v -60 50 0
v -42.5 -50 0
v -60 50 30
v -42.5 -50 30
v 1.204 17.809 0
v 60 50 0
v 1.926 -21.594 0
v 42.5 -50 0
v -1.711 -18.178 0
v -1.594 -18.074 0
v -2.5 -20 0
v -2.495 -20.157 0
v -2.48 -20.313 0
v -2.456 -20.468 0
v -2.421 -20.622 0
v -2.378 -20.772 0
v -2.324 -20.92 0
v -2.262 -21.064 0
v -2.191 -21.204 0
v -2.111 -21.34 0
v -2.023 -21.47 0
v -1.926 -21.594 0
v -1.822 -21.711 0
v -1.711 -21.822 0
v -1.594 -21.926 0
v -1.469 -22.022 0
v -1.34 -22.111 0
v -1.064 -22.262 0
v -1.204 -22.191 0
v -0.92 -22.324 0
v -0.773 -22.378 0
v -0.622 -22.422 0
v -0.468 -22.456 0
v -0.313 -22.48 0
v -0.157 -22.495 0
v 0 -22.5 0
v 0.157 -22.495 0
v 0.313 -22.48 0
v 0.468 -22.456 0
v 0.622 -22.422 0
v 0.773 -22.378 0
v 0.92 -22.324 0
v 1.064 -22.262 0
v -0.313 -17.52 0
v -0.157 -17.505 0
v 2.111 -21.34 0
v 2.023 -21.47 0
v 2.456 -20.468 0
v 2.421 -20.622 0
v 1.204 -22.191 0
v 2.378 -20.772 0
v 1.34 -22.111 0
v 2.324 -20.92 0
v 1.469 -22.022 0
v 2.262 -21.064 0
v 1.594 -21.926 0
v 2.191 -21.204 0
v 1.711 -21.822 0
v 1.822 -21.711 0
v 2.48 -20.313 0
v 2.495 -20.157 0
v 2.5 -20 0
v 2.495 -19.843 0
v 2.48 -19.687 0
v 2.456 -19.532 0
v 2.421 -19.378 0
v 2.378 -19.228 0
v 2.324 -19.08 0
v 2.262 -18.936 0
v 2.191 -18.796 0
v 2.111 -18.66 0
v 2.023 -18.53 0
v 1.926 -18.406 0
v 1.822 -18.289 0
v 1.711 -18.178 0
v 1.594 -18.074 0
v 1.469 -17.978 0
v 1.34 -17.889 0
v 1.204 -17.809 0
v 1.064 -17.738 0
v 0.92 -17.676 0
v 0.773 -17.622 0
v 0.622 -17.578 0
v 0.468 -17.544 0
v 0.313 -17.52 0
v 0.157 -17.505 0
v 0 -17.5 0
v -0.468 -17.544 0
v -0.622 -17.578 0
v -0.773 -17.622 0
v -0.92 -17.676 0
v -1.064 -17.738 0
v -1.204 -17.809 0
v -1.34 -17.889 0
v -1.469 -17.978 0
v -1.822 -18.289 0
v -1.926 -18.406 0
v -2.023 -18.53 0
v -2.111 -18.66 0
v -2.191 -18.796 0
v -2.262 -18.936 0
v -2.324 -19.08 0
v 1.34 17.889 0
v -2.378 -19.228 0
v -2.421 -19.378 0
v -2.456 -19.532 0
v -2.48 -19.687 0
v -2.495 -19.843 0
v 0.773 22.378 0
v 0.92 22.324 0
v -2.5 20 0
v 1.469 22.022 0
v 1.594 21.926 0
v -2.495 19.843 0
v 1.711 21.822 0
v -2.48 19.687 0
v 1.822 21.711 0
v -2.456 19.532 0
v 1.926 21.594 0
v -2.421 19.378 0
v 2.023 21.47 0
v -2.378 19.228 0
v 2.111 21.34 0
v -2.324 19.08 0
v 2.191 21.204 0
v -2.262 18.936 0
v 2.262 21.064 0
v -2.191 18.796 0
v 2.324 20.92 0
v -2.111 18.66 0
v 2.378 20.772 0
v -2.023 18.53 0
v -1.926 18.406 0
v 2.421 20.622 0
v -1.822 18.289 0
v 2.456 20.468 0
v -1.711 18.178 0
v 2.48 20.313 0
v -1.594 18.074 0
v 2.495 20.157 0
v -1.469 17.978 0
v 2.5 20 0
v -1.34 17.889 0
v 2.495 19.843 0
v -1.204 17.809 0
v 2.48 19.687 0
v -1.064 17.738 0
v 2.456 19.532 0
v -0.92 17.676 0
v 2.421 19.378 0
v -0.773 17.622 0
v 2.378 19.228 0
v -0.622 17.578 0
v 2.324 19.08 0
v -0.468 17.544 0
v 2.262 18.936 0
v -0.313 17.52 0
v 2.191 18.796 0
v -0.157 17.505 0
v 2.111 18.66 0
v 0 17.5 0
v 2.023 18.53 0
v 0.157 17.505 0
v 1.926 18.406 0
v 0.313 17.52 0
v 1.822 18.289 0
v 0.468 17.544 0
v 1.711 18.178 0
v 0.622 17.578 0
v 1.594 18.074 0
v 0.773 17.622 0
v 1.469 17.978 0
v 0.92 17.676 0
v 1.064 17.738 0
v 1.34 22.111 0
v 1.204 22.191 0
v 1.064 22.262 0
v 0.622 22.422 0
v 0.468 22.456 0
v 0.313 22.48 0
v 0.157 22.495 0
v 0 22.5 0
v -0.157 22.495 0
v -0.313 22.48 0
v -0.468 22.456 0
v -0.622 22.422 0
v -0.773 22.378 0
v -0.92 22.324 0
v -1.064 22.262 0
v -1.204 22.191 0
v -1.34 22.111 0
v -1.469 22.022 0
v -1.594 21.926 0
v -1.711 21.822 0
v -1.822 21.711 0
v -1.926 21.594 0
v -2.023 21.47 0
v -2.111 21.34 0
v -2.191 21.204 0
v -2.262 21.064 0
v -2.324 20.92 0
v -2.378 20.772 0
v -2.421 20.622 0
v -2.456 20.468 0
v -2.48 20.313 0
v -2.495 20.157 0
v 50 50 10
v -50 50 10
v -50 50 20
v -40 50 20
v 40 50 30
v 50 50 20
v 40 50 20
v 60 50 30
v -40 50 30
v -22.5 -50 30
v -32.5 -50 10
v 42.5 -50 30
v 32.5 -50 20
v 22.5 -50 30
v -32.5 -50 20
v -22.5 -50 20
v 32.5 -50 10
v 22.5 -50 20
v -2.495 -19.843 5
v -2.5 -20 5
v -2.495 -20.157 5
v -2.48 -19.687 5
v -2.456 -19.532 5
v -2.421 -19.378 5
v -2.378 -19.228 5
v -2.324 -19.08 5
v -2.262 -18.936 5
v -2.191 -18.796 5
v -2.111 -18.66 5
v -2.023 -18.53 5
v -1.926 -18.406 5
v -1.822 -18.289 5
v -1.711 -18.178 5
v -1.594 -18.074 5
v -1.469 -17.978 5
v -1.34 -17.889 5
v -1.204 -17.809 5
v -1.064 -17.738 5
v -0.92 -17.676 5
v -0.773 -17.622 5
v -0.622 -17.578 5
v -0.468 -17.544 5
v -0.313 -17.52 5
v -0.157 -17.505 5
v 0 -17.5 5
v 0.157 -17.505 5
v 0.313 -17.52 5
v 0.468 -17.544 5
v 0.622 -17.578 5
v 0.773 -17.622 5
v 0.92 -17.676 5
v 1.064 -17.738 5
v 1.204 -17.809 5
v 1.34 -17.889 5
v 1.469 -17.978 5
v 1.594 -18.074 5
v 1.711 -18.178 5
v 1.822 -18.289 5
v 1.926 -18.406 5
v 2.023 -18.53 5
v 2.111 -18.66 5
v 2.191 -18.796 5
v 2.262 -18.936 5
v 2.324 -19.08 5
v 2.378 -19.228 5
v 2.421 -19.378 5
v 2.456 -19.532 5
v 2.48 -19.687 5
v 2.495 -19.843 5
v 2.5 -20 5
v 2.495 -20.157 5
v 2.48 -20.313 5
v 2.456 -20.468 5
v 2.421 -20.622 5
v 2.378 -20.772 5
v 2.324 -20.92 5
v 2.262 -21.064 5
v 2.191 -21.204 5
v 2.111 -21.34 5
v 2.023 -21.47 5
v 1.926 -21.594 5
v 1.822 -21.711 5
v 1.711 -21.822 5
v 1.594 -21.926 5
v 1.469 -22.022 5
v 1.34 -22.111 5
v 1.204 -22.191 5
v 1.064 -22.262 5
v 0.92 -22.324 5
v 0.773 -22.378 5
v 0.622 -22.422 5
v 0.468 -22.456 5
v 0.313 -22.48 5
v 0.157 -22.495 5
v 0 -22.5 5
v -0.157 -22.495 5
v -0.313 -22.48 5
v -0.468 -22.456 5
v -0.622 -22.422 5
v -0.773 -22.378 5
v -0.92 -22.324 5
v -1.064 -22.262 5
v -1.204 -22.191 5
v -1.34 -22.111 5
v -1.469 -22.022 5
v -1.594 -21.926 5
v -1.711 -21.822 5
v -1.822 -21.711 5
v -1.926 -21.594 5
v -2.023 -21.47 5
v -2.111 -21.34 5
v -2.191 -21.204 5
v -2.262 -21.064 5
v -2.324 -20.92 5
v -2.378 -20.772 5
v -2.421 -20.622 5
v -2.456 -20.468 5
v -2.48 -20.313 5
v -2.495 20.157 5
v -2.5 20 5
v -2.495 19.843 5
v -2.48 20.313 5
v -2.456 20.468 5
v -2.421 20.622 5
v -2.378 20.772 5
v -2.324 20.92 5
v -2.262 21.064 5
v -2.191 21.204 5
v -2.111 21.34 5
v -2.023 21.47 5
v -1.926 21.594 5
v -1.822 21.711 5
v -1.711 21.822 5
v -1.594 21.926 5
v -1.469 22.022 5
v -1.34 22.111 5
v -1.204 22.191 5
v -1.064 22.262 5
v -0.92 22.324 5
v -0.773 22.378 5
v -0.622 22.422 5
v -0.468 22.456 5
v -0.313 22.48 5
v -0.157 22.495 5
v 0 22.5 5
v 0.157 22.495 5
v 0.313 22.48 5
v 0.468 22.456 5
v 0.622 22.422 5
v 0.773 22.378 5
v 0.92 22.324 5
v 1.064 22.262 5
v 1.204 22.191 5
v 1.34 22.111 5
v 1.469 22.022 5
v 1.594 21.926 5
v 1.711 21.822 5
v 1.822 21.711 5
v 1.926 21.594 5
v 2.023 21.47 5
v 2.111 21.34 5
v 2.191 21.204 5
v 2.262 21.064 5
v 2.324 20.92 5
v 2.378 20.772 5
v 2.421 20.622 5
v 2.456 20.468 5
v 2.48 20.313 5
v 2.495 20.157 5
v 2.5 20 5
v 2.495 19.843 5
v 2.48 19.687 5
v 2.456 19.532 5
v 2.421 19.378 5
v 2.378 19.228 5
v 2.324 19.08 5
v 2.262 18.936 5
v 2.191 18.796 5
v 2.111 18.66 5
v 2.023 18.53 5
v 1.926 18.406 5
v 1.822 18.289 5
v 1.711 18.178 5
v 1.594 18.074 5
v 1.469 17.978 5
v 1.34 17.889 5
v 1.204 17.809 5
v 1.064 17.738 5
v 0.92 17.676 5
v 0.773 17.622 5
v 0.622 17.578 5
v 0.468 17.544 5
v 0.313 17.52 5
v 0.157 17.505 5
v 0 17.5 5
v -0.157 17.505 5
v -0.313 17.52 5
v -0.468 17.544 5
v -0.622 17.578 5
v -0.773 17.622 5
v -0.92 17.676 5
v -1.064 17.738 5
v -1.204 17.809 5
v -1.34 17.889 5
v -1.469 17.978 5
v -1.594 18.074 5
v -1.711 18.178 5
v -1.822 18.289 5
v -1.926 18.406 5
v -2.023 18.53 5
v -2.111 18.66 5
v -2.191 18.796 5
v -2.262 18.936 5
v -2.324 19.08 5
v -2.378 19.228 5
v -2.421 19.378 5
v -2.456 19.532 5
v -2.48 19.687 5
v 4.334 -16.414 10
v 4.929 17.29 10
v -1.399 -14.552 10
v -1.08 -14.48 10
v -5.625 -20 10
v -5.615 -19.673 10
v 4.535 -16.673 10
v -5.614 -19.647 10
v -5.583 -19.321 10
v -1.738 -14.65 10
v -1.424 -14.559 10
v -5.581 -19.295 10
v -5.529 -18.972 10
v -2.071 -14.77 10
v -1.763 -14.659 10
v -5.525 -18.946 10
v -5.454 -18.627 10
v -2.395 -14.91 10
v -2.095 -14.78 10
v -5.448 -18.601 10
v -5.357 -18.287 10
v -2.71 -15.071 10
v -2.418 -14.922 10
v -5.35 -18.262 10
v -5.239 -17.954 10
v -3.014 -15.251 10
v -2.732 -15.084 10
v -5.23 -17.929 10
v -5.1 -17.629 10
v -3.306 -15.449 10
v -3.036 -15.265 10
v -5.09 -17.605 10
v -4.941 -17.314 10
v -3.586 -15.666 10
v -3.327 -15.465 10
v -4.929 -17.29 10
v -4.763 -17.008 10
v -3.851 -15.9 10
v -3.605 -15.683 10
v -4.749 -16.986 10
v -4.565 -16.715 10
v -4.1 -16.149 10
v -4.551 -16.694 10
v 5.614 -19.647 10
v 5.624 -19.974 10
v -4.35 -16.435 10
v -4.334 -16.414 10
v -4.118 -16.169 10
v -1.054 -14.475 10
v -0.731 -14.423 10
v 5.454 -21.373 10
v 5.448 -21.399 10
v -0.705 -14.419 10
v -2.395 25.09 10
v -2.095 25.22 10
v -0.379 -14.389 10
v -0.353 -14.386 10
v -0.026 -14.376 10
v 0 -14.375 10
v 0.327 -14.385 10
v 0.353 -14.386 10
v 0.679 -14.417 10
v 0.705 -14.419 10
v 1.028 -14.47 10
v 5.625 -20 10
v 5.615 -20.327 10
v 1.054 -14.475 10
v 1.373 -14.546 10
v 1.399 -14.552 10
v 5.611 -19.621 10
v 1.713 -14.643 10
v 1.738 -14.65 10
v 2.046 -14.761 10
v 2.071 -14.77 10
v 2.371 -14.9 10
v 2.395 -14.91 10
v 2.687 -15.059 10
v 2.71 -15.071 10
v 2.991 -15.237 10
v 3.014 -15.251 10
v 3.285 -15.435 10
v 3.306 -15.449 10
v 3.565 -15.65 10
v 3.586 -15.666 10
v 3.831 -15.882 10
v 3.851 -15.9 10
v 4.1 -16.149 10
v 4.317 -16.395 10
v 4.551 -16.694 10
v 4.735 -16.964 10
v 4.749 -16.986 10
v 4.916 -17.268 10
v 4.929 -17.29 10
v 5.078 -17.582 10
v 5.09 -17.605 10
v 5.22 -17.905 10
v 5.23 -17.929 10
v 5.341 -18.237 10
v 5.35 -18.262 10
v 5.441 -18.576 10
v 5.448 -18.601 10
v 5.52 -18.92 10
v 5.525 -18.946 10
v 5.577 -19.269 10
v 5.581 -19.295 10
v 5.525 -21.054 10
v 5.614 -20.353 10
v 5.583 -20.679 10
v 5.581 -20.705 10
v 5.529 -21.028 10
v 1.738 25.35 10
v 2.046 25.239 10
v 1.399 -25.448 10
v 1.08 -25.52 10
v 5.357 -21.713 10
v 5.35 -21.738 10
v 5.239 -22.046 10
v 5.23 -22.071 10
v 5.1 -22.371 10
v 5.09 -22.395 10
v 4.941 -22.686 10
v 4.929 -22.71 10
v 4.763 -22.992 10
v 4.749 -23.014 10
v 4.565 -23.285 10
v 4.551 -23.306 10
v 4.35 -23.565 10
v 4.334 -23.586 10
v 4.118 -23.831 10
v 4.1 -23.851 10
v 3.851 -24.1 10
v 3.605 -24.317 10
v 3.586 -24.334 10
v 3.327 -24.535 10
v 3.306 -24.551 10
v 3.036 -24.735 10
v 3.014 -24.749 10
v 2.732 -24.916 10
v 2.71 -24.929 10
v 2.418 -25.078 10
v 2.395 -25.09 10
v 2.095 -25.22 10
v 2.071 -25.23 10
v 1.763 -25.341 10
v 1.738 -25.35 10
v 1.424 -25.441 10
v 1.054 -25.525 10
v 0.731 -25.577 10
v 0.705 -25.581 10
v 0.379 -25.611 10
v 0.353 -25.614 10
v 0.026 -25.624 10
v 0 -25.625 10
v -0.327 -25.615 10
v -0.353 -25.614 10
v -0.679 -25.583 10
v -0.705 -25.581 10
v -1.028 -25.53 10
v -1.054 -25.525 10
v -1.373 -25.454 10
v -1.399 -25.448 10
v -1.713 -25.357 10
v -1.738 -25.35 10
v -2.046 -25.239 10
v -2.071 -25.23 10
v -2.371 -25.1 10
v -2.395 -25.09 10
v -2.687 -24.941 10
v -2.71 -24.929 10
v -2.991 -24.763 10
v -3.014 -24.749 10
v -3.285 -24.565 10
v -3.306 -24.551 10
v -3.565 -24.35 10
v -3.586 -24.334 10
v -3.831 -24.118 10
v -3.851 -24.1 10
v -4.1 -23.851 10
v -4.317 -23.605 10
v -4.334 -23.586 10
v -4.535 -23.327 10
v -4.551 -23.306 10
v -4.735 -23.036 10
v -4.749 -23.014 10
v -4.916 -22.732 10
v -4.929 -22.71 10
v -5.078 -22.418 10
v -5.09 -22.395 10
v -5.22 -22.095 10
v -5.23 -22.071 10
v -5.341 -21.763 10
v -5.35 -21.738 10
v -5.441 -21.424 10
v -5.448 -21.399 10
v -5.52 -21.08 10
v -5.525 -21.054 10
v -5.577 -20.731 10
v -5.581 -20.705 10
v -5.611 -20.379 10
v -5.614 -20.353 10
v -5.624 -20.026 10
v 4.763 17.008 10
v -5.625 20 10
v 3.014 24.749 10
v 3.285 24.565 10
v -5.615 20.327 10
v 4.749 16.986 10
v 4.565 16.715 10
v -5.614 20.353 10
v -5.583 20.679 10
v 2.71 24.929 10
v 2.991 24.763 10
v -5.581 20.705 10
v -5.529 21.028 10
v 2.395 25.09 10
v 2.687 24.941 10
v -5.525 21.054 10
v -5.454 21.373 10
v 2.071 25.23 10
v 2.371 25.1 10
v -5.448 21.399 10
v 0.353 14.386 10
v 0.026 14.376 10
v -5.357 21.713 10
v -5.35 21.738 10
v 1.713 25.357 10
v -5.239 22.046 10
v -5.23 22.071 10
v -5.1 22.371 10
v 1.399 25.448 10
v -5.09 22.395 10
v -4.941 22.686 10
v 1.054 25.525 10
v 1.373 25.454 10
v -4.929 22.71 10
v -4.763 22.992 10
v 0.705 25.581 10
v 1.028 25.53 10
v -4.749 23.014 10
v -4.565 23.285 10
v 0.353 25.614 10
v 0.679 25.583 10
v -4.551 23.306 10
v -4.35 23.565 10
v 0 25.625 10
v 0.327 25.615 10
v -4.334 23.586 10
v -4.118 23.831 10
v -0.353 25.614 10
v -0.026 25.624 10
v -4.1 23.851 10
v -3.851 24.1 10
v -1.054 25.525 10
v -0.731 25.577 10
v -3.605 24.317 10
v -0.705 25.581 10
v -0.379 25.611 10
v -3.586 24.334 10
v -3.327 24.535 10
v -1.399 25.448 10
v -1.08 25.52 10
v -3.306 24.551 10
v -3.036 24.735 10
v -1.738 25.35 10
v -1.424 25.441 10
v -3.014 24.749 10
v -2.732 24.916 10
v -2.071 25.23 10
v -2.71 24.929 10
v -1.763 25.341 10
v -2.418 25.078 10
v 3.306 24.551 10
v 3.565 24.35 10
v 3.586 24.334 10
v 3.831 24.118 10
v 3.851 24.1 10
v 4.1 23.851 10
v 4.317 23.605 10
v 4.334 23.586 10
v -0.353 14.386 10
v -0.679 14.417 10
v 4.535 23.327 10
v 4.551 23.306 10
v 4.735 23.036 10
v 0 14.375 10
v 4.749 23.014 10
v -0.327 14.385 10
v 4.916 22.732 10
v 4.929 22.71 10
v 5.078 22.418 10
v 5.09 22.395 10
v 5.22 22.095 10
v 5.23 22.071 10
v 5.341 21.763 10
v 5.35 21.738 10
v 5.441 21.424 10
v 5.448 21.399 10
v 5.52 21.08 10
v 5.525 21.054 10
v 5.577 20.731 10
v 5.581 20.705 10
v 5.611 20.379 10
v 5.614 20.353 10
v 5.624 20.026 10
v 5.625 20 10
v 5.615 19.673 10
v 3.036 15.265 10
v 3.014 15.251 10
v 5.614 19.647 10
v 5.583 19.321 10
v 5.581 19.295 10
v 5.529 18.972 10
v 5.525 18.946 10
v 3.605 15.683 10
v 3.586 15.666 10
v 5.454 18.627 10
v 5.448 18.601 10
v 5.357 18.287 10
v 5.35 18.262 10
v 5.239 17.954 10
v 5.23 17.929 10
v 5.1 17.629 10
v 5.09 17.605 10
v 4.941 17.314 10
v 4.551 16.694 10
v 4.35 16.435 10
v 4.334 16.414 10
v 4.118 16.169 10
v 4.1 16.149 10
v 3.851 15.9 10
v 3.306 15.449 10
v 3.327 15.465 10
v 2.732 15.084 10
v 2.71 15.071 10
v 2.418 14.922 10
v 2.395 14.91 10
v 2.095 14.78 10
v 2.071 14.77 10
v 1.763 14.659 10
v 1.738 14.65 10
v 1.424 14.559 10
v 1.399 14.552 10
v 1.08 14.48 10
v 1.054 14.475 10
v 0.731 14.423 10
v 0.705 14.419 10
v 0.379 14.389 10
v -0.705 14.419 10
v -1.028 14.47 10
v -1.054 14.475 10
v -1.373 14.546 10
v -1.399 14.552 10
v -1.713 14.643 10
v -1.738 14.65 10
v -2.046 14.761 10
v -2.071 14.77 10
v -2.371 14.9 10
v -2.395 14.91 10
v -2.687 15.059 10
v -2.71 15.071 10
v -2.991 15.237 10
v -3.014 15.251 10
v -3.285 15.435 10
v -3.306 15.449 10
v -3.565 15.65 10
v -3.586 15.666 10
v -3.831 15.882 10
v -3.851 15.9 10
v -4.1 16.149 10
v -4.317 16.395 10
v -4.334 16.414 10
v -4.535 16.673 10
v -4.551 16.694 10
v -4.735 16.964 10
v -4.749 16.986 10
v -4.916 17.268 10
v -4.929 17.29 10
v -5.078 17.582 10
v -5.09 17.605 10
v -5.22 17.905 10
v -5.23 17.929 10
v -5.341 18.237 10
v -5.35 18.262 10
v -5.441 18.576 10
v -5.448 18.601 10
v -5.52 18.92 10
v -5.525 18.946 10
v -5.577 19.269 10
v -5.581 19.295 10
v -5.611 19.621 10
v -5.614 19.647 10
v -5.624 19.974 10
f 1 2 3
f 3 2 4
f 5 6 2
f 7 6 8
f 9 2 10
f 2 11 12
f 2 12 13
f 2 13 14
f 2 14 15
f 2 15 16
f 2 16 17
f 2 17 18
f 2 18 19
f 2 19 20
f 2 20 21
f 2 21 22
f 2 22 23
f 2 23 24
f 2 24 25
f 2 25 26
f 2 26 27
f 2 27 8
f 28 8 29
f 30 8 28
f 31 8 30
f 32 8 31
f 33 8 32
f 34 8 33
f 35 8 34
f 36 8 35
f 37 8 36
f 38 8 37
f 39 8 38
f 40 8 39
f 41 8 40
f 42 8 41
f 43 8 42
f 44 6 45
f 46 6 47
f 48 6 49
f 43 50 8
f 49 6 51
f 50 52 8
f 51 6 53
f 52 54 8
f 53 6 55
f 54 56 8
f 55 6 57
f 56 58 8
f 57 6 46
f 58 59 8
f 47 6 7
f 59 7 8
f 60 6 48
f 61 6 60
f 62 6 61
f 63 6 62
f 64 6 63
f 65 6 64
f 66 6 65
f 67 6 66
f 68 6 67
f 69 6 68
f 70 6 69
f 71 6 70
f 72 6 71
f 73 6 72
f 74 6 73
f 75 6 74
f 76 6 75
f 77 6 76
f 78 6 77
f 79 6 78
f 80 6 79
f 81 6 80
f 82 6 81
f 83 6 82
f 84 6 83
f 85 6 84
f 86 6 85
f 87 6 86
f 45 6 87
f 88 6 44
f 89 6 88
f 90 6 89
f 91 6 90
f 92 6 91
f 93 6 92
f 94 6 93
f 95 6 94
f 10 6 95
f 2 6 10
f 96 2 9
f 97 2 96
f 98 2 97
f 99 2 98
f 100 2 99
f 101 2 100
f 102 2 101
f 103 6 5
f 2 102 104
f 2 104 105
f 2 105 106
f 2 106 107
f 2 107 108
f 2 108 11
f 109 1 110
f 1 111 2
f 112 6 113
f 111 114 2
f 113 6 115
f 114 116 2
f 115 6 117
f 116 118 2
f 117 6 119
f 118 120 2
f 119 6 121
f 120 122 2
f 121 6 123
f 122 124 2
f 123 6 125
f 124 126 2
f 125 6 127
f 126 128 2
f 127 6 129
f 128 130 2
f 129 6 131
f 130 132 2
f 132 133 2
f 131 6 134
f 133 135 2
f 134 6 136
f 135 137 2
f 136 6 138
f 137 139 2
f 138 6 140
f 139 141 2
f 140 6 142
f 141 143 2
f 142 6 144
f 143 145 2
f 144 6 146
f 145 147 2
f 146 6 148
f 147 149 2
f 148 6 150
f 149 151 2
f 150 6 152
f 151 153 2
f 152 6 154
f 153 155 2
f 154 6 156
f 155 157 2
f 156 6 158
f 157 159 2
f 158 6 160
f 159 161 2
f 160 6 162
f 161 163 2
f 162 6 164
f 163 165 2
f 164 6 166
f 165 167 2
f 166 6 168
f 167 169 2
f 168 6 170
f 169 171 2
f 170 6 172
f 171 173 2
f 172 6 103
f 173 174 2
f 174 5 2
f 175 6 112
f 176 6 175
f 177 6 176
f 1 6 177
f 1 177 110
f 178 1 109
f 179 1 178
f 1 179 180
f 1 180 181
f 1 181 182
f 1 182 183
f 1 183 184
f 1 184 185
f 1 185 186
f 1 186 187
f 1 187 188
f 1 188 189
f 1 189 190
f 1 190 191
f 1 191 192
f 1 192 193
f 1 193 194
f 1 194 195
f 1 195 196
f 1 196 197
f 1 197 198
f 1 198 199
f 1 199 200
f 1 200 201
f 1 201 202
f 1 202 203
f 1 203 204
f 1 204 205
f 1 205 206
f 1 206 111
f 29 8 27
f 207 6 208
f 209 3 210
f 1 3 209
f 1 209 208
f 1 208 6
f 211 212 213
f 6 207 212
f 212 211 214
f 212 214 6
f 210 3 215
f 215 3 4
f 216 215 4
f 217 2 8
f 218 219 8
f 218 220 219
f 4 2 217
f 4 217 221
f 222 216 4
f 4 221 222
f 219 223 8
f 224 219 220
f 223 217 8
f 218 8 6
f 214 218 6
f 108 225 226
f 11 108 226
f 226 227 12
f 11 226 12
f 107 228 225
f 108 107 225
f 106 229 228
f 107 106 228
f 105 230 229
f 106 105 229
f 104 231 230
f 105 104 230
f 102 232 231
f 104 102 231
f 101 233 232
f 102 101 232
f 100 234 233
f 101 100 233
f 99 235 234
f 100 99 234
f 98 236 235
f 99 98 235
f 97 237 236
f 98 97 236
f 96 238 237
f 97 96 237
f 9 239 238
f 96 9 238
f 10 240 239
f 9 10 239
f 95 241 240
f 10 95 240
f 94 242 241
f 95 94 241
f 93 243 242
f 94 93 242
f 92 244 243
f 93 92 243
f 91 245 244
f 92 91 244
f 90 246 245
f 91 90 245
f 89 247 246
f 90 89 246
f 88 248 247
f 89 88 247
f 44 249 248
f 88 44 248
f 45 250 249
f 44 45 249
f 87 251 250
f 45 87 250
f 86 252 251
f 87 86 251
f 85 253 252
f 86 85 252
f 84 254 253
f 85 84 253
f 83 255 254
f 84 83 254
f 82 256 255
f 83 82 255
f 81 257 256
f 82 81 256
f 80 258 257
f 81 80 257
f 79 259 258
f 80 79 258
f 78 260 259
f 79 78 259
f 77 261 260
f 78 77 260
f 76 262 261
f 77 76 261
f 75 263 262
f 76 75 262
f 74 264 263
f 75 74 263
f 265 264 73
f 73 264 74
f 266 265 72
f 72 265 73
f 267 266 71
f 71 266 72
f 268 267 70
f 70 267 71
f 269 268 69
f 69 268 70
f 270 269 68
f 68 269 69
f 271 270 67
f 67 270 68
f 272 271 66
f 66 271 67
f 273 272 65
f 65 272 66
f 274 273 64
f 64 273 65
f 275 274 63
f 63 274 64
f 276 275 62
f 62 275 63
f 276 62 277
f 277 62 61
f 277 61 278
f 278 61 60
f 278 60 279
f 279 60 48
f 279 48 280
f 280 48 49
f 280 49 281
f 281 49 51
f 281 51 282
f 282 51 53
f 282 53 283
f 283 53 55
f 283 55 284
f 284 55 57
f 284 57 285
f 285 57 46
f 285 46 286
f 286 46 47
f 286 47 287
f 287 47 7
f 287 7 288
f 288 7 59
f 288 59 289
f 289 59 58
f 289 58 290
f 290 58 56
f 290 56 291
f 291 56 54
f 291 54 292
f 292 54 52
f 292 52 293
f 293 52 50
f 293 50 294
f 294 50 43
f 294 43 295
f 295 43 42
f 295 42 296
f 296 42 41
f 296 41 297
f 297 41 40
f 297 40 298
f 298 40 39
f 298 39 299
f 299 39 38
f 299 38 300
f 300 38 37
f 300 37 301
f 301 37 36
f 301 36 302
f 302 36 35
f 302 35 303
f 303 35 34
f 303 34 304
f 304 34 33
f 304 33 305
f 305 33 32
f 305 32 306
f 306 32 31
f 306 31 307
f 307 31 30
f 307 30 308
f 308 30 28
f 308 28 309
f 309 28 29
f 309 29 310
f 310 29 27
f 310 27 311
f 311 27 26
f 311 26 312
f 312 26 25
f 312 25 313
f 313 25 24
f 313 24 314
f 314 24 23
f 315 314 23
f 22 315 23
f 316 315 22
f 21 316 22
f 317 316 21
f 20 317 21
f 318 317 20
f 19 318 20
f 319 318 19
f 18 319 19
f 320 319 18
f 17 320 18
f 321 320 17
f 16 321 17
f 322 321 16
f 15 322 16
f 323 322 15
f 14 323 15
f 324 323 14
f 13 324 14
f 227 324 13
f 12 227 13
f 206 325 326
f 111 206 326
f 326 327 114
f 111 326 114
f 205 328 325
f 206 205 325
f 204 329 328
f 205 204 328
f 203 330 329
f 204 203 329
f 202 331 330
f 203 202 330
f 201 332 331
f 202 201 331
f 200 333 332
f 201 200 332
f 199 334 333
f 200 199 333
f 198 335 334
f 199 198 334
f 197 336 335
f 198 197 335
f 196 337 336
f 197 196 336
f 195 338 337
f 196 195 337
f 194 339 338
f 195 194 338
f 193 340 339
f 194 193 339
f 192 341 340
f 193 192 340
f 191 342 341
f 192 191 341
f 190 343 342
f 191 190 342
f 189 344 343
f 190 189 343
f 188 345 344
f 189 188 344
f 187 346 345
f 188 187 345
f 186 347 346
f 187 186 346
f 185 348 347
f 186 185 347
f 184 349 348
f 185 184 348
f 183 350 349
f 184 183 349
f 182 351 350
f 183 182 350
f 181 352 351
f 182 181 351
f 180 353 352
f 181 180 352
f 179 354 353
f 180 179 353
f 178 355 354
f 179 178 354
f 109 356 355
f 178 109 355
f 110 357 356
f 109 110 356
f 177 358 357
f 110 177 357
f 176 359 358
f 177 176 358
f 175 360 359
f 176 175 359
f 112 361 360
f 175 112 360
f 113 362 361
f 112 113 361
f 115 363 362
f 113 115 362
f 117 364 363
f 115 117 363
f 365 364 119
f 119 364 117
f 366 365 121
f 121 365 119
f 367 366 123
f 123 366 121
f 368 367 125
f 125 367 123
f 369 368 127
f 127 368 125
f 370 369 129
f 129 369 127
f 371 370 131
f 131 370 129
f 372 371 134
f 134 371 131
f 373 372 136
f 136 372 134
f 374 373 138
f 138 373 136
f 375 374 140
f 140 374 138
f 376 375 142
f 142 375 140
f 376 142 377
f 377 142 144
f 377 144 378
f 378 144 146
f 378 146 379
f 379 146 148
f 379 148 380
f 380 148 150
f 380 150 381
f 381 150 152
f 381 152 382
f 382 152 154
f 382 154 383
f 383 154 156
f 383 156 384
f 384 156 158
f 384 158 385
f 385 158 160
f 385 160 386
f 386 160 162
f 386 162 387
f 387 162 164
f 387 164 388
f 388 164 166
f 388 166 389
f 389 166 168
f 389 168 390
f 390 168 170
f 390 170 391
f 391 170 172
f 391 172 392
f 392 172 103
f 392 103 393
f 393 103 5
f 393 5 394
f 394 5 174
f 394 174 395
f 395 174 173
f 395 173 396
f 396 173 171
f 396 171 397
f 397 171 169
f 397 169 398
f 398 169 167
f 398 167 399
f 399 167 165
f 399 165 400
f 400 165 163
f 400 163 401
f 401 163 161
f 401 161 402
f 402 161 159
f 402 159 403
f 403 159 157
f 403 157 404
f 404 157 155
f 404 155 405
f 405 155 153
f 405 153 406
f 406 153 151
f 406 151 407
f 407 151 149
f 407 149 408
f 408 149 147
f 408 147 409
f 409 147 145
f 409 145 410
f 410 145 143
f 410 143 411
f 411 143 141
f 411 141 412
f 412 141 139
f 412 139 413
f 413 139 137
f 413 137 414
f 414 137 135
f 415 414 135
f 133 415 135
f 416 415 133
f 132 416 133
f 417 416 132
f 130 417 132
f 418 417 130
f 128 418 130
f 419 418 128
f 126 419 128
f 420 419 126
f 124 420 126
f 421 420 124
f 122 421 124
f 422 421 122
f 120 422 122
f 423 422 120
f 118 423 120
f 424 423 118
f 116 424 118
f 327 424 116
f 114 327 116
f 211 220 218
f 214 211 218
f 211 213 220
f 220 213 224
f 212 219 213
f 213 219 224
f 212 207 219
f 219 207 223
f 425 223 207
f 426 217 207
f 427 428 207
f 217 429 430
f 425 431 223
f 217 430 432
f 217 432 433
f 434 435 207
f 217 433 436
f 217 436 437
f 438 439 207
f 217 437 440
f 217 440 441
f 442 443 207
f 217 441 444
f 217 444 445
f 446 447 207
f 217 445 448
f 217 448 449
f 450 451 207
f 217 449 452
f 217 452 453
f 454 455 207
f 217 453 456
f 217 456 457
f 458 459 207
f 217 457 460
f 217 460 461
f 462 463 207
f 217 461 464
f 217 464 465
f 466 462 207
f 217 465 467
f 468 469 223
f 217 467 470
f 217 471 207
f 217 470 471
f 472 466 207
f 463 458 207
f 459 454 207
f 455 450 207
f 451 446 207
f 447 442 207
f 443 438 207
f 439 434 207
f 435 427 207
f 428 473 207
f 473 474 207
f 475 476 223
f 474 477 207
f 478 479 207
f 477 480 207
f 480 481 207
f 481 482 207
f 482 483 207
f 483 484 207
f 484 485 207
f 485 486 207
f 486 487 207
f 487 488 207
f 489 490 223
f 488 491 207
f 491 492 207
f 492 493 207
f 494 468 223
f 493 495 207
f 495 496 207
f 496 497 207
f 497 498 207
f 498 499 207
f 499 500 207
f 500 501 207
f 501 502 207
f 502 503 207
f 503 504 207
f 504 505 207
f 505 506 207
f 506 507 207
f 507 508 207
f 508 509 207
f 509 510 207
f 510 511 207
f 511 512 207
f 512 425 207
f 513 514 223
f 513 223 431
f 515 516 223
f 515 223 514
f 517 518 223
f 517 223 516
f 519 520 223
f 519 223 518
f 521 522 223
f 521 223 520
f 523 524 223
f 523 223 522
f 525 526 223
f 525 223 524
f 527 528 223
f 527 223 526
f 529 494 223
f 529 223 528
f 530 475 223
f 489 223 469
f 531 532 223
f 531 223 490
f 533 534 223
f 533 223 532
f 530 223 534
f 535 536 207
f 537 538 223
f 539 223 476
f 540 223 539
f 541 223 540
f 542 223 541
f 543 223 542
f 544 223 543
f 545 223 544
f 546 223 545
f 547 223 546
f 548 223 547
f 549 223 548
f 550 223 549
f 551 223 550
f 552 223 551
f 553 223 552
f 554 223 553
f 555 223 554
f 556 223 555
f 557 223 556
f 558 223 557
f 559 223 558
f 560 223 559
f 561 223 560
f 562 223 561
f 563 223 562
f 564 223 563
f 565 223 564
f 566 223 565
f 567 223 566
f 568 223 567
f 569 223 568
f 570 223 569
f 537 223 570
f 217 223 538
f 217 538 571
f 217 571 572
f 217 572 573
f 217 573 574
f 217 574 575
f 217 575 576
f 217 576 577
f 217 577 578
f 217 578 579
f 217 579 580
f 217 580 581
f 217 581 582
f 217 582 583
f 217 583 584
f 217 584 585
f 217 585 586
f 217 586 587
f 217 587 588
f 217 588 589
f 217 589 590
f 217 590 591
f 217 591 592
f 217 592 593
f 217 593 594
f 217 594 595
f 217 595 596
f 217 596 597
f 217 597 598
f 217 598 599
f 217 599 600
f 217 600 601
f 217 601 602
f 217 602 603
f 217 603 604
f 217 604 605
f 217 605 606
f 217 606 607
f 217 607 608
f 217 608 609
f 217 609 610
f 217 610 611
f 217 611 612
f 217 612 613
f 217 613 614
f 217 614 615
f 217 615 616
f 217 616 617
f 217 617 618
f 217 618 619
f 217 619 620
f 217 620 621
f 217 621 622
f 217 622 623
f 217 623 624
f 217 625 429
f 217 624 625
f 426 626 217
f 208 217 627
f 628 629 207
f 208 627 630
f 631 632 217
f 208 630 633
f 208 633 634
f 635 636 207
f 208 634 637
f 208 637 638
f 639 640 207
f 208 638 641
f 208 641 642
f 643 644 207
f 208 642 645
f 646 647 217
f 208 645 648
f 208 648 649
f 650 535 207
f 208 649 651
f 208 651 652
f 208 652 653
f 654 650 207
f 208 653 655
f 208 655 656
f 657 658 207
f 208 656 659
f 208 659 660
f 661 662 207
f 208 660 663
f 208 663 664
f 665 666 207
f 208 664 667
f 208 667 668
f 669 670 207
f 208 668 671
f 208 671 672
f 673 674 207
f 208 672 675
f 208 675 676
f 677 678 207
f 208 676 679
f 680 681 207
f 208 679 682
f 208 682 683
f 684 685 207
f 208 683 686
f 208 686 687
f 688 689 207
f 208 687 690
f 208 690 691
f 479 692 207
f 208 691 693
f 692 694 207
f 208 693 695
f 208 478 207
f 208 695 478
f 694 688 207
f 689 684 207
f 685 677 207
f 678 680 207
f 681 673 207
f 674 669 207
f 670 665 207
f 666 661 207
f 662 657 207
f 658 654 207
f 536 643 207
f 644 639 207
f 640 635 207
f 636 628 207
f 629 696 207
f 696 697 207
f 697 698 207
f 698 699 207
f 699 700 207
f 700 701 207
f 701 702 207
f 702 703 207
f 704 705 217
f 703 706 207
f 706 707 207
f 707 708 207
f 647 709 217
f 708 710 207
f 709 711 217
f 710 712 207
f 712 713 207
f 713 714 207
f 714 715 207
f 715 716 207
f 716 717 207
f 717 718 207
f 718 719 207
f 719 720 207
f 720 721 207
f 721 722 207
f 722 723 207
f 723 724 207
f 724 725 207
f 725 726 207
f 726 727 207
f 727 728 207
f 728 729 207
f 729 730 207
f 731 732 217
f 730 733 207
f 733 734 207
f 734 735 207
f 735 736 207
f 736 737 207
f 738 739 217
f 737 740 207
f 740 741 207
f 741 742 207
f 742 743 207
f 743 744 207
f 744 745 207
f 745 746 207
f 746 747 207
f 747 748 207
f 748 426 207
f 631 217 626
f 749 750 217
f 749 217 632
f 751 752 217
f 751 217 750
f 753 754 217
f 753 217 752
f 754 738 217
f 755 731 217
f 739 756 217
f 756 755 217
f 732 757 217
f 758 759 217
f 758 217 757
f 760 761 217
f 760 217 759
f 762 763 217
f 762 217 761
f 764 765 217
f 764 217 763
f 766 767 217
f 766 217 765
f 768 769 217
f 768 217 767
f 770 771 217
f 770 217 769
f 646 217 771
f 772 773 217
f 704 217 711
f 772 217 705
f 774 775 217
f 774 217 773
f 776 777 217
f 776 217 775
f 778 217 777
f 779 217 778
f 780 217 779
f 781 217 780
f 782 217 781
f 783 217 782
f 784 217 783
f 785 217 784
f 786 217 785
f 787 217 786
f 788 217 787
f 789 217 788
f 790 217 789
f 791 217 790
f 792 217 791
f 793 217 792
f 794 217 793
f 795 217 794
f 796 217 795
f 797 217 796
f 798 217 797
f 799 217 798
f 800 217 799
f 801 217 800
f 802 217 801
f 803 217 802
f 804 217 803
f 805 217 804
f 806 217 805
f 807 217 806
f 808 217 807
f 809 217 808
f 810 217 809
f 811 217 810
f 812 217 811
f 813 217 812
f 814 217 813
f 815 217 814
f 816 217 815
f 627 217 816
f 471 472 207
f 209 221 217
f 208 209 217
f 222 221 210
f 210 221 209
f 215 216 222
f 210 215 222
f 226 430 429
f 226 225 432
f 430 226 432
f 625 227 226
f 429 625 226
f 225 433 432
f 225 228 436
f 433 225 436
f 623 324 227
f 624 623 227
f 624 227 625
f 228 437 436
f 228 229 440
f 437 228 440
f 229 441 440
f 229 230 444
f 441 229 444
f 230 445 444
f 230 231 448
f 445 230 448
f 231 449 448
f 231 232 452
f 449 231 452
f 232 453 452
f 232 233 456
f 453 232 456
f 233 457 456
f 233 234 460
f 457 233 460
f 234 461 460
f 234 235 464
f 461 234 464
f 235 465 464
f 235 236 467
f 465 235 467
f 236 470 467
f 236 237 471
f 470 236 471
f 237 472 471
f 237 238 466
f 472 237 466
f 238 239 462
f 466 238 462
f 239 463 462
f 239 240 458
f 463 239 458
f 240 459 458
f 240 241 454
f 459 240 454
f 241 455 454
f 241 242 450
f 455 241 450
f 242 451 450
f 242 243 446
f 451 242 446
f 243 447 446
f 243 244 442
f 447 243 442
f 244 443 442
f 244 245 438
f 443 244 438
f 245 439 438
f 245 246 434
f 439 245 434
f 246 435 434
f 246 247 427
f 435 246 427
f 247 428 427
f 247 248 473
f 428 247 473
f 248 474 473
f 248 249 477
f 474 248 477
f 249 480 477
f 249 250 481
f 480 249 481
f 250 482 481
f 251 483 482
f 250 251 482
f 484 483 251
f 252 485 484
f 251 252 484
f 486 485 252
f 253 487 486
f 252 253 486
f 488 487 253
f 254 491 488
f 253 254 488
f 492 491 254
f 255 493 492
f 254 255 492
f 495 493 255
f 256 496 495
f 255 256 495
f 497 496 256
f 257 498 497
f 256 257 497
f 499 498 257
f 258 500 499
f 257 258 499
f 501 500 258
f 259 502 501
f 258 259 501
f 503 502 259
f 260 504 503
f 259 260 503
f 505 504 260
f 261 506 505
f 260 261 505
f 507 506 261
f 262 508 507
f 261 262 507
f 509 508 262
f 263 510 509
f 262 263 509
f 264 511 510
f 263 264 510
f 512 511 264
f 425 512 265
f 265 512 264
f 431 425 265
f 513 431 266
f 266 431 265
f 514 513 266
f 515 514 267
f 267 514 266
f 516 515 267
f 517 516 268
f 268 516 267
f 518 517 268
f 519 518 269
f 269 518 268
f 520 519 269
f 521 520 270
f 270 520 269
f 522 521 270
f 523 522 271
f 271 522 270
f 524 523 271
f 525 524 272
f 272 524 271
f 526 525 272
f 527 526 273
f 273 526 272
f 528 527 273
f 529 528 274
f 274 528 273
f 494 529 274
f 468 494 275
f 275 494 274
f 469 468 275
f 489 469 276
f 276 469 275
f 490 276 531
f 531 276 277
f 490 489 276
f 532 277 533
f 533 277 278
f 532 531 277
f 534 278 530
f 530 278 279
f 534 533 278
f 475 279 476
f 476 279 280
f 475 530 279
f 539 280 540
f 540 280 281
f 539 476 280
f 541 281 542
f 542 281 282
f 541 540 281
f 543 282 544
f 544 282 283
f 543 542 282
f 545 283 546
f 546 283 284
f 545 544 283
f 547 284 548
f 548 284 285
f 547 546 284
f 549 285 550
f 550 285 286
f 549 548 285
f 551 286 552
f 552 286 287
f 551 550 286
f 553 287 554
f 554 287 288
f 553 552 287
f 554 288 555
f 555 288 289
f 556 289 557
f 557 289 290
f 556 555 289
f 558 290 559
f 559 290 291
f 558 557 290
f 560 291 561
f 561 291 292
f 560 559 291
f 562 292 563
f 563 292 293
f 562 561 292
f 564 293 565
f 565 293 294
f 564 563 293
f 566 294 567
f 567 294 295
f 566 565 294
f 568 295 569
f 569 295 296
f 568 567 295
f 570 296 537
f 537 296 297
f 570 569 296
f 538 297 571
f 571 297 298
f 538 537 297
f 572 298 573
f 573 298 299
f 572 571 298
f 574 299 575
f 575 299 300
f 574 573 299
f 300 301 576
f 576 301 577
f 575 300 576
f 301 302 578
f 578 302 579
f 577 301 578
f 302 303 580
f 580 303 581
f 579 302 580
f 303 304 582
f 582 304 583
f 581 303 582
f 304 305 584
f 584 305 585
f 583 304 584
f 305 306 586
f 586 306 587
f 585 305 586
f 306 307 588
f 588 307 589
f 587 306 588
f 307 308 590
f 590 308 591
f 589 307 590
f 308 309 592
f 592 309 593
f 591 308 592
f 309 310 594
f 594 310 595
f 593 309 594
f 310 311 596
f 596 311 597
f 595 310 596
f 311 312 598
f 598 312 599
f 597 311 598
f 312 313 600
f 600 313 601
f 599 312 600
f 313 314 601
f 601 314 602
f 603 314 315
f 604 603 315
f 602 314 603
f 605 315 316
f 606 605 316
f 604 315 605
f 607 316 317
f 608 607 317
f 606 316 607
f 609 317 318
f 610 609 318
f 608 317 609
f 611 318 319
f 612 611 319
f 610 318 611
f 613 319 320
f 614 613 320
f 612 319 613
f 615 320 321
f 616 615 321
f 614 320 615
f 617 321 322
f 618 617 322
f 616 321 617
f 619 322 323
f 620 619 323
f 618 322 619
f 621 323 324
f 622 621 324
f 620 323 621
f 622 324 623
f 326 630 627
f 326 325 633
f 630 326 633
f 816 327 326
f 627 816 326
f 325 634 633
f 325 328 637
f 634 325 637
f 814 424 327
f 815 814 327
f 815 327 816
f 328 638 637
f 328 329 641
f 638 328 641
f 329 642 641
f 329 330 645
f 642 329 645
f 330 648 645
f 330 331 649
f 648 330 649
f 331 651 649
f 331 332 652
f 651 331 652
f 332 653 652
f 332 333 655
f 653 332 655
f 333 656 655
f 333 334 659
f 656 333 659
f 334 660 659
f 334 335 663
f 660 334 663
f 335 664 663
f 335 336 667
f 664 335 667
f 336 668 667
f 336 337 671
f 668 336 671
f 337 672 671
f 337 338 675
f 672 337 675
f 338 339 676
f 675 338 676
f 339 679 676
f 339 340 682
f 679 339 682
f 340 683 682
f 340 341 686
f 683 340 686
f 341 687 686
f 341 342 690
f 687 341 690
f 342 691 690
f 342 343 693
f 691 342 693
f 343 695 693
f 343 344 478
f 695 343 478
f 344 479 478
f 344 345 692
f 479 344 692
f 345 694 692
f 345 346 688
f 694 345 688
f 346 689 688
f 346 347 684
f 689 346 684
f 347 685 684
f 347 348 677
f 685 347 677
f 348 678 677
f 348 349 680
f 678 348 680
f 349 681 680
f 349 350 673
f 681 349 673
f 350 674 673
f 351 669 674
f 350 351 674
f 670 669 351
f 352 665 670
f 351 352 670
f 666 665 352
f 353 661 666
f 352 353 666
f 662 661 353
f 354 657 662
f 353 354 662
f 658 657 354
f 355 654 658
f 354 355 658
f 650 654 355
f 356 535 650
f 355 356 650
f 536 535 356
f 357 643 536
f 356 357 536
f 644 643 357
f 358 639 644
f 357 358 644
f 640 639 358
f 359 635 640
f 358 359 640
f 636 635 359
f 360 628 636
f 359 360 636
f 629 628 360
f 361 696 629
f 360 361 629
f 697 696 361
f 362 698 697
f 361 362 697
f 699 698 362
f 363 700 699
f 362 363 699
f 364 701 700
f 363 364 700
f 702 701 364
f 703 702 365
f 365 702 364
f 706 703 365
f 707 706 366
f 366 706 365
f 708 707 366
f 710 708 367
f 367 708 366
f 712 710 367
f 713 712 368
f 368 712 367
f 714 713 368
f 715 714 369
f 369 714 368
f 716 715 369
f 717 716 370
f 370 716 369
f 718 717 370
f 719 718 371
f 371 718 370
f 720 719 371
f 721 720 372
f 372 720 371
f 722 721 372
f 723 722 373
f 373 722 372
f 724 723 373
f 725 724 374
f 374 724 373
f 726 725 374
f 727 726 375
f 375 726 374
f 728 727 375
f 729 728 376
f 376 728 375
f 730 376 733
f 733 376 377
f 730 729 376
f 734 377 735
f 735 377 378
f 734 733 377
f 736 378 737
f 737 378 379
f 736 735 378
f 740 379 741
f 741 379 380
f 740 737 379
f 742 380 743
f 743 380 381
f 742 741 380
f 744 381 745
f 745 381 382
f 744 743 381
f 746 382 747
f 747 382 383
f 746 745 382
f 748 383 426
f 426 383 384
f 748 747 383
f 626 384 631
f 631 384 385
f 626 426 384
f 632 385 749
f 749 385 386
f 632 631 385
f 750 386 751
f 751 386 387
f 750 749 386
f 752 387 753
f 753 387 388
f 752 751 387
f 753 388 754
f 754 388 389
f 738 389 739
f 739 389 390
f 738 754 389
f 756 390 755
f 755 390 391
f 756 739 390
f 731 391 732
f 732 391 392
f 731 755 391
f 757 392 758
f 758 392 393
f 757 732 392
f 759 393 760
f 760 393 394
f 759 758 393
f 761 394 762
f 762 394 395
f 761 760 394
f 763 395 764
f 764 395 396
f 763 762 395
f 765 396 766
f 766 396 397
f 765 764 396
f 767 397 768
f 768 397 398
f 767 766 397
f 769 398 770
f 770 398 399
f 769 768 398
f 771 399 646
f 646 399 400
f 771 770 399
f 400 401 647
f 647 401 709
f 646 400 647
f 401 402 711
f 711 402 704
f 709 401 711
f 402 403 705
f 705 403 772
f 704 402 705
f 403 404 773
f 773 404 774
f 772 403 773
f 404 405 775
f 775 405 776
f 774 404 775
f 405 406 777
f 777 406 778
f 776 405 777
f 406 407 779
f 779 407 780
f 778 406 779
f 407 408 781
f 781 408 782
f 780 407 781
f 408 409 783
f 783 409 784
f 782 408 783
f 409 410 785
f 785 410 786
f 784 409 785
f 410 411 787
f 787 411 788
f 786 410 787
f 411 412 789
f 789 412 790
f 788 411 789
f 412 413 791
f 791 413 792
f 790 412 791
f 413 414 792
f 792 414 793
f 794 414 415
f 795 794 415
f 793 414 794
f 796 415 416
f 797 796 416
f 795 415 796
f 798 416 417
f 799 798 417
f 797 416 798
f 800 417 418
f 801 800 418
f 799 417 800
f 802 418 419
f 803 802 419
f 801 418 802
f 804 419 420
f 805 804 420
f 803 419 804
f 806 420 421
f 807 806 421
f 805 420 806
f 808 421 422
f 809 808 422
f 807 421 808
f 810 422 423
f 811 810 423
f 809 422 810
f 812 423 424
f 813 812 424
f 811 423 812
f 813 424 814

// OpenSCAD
$fn=100;
bw = 85; //bottom width
tw = 120; //top width
l = 100;//length
h = 30;//height
holeRad = 2.5; 
difference() {
	linear_extrude(h) polygon(points=[[-(bw/2),-(l/2)],[-(tw/2),l/2],[tw/2,l/2],[bw/2,-(l/2)]], paths=[[0,1,2,3]]);
	translate([0,0,10]) linear_extrude(10) polygon(points=[[-(bw/2)+10,-(l/2)],[-(tw/2)+10,l/2],[(tw/2)-10,l/2],[(bw/2)-10,-(l/2)]], paths=[[0,1,2,3]]);
	translate([0,0,20]) linear_extrude(10) polygon(points=[[-(bw/2)+20,-(l/2)],[-(tw/2)+20,l/2],[(tw/2)-20,l/2],[(bw/2)-20,-(l/2)]], paths=[[0,1,2,3]]);
	
	//bottom screw hole
	translate([0,-20,-1]) cylinder(12, holeRad, holeRad);
	translate([0,-20,5]) cylinder(6, holeRad, holeRad*2.5);
	
	//top screw hole
	translate([0,20,-1]) cylinder(12, holeRad, holeRad);
	translate([0,20,5]) cylinder(6, holeRad, holeRad*2.5);
}
